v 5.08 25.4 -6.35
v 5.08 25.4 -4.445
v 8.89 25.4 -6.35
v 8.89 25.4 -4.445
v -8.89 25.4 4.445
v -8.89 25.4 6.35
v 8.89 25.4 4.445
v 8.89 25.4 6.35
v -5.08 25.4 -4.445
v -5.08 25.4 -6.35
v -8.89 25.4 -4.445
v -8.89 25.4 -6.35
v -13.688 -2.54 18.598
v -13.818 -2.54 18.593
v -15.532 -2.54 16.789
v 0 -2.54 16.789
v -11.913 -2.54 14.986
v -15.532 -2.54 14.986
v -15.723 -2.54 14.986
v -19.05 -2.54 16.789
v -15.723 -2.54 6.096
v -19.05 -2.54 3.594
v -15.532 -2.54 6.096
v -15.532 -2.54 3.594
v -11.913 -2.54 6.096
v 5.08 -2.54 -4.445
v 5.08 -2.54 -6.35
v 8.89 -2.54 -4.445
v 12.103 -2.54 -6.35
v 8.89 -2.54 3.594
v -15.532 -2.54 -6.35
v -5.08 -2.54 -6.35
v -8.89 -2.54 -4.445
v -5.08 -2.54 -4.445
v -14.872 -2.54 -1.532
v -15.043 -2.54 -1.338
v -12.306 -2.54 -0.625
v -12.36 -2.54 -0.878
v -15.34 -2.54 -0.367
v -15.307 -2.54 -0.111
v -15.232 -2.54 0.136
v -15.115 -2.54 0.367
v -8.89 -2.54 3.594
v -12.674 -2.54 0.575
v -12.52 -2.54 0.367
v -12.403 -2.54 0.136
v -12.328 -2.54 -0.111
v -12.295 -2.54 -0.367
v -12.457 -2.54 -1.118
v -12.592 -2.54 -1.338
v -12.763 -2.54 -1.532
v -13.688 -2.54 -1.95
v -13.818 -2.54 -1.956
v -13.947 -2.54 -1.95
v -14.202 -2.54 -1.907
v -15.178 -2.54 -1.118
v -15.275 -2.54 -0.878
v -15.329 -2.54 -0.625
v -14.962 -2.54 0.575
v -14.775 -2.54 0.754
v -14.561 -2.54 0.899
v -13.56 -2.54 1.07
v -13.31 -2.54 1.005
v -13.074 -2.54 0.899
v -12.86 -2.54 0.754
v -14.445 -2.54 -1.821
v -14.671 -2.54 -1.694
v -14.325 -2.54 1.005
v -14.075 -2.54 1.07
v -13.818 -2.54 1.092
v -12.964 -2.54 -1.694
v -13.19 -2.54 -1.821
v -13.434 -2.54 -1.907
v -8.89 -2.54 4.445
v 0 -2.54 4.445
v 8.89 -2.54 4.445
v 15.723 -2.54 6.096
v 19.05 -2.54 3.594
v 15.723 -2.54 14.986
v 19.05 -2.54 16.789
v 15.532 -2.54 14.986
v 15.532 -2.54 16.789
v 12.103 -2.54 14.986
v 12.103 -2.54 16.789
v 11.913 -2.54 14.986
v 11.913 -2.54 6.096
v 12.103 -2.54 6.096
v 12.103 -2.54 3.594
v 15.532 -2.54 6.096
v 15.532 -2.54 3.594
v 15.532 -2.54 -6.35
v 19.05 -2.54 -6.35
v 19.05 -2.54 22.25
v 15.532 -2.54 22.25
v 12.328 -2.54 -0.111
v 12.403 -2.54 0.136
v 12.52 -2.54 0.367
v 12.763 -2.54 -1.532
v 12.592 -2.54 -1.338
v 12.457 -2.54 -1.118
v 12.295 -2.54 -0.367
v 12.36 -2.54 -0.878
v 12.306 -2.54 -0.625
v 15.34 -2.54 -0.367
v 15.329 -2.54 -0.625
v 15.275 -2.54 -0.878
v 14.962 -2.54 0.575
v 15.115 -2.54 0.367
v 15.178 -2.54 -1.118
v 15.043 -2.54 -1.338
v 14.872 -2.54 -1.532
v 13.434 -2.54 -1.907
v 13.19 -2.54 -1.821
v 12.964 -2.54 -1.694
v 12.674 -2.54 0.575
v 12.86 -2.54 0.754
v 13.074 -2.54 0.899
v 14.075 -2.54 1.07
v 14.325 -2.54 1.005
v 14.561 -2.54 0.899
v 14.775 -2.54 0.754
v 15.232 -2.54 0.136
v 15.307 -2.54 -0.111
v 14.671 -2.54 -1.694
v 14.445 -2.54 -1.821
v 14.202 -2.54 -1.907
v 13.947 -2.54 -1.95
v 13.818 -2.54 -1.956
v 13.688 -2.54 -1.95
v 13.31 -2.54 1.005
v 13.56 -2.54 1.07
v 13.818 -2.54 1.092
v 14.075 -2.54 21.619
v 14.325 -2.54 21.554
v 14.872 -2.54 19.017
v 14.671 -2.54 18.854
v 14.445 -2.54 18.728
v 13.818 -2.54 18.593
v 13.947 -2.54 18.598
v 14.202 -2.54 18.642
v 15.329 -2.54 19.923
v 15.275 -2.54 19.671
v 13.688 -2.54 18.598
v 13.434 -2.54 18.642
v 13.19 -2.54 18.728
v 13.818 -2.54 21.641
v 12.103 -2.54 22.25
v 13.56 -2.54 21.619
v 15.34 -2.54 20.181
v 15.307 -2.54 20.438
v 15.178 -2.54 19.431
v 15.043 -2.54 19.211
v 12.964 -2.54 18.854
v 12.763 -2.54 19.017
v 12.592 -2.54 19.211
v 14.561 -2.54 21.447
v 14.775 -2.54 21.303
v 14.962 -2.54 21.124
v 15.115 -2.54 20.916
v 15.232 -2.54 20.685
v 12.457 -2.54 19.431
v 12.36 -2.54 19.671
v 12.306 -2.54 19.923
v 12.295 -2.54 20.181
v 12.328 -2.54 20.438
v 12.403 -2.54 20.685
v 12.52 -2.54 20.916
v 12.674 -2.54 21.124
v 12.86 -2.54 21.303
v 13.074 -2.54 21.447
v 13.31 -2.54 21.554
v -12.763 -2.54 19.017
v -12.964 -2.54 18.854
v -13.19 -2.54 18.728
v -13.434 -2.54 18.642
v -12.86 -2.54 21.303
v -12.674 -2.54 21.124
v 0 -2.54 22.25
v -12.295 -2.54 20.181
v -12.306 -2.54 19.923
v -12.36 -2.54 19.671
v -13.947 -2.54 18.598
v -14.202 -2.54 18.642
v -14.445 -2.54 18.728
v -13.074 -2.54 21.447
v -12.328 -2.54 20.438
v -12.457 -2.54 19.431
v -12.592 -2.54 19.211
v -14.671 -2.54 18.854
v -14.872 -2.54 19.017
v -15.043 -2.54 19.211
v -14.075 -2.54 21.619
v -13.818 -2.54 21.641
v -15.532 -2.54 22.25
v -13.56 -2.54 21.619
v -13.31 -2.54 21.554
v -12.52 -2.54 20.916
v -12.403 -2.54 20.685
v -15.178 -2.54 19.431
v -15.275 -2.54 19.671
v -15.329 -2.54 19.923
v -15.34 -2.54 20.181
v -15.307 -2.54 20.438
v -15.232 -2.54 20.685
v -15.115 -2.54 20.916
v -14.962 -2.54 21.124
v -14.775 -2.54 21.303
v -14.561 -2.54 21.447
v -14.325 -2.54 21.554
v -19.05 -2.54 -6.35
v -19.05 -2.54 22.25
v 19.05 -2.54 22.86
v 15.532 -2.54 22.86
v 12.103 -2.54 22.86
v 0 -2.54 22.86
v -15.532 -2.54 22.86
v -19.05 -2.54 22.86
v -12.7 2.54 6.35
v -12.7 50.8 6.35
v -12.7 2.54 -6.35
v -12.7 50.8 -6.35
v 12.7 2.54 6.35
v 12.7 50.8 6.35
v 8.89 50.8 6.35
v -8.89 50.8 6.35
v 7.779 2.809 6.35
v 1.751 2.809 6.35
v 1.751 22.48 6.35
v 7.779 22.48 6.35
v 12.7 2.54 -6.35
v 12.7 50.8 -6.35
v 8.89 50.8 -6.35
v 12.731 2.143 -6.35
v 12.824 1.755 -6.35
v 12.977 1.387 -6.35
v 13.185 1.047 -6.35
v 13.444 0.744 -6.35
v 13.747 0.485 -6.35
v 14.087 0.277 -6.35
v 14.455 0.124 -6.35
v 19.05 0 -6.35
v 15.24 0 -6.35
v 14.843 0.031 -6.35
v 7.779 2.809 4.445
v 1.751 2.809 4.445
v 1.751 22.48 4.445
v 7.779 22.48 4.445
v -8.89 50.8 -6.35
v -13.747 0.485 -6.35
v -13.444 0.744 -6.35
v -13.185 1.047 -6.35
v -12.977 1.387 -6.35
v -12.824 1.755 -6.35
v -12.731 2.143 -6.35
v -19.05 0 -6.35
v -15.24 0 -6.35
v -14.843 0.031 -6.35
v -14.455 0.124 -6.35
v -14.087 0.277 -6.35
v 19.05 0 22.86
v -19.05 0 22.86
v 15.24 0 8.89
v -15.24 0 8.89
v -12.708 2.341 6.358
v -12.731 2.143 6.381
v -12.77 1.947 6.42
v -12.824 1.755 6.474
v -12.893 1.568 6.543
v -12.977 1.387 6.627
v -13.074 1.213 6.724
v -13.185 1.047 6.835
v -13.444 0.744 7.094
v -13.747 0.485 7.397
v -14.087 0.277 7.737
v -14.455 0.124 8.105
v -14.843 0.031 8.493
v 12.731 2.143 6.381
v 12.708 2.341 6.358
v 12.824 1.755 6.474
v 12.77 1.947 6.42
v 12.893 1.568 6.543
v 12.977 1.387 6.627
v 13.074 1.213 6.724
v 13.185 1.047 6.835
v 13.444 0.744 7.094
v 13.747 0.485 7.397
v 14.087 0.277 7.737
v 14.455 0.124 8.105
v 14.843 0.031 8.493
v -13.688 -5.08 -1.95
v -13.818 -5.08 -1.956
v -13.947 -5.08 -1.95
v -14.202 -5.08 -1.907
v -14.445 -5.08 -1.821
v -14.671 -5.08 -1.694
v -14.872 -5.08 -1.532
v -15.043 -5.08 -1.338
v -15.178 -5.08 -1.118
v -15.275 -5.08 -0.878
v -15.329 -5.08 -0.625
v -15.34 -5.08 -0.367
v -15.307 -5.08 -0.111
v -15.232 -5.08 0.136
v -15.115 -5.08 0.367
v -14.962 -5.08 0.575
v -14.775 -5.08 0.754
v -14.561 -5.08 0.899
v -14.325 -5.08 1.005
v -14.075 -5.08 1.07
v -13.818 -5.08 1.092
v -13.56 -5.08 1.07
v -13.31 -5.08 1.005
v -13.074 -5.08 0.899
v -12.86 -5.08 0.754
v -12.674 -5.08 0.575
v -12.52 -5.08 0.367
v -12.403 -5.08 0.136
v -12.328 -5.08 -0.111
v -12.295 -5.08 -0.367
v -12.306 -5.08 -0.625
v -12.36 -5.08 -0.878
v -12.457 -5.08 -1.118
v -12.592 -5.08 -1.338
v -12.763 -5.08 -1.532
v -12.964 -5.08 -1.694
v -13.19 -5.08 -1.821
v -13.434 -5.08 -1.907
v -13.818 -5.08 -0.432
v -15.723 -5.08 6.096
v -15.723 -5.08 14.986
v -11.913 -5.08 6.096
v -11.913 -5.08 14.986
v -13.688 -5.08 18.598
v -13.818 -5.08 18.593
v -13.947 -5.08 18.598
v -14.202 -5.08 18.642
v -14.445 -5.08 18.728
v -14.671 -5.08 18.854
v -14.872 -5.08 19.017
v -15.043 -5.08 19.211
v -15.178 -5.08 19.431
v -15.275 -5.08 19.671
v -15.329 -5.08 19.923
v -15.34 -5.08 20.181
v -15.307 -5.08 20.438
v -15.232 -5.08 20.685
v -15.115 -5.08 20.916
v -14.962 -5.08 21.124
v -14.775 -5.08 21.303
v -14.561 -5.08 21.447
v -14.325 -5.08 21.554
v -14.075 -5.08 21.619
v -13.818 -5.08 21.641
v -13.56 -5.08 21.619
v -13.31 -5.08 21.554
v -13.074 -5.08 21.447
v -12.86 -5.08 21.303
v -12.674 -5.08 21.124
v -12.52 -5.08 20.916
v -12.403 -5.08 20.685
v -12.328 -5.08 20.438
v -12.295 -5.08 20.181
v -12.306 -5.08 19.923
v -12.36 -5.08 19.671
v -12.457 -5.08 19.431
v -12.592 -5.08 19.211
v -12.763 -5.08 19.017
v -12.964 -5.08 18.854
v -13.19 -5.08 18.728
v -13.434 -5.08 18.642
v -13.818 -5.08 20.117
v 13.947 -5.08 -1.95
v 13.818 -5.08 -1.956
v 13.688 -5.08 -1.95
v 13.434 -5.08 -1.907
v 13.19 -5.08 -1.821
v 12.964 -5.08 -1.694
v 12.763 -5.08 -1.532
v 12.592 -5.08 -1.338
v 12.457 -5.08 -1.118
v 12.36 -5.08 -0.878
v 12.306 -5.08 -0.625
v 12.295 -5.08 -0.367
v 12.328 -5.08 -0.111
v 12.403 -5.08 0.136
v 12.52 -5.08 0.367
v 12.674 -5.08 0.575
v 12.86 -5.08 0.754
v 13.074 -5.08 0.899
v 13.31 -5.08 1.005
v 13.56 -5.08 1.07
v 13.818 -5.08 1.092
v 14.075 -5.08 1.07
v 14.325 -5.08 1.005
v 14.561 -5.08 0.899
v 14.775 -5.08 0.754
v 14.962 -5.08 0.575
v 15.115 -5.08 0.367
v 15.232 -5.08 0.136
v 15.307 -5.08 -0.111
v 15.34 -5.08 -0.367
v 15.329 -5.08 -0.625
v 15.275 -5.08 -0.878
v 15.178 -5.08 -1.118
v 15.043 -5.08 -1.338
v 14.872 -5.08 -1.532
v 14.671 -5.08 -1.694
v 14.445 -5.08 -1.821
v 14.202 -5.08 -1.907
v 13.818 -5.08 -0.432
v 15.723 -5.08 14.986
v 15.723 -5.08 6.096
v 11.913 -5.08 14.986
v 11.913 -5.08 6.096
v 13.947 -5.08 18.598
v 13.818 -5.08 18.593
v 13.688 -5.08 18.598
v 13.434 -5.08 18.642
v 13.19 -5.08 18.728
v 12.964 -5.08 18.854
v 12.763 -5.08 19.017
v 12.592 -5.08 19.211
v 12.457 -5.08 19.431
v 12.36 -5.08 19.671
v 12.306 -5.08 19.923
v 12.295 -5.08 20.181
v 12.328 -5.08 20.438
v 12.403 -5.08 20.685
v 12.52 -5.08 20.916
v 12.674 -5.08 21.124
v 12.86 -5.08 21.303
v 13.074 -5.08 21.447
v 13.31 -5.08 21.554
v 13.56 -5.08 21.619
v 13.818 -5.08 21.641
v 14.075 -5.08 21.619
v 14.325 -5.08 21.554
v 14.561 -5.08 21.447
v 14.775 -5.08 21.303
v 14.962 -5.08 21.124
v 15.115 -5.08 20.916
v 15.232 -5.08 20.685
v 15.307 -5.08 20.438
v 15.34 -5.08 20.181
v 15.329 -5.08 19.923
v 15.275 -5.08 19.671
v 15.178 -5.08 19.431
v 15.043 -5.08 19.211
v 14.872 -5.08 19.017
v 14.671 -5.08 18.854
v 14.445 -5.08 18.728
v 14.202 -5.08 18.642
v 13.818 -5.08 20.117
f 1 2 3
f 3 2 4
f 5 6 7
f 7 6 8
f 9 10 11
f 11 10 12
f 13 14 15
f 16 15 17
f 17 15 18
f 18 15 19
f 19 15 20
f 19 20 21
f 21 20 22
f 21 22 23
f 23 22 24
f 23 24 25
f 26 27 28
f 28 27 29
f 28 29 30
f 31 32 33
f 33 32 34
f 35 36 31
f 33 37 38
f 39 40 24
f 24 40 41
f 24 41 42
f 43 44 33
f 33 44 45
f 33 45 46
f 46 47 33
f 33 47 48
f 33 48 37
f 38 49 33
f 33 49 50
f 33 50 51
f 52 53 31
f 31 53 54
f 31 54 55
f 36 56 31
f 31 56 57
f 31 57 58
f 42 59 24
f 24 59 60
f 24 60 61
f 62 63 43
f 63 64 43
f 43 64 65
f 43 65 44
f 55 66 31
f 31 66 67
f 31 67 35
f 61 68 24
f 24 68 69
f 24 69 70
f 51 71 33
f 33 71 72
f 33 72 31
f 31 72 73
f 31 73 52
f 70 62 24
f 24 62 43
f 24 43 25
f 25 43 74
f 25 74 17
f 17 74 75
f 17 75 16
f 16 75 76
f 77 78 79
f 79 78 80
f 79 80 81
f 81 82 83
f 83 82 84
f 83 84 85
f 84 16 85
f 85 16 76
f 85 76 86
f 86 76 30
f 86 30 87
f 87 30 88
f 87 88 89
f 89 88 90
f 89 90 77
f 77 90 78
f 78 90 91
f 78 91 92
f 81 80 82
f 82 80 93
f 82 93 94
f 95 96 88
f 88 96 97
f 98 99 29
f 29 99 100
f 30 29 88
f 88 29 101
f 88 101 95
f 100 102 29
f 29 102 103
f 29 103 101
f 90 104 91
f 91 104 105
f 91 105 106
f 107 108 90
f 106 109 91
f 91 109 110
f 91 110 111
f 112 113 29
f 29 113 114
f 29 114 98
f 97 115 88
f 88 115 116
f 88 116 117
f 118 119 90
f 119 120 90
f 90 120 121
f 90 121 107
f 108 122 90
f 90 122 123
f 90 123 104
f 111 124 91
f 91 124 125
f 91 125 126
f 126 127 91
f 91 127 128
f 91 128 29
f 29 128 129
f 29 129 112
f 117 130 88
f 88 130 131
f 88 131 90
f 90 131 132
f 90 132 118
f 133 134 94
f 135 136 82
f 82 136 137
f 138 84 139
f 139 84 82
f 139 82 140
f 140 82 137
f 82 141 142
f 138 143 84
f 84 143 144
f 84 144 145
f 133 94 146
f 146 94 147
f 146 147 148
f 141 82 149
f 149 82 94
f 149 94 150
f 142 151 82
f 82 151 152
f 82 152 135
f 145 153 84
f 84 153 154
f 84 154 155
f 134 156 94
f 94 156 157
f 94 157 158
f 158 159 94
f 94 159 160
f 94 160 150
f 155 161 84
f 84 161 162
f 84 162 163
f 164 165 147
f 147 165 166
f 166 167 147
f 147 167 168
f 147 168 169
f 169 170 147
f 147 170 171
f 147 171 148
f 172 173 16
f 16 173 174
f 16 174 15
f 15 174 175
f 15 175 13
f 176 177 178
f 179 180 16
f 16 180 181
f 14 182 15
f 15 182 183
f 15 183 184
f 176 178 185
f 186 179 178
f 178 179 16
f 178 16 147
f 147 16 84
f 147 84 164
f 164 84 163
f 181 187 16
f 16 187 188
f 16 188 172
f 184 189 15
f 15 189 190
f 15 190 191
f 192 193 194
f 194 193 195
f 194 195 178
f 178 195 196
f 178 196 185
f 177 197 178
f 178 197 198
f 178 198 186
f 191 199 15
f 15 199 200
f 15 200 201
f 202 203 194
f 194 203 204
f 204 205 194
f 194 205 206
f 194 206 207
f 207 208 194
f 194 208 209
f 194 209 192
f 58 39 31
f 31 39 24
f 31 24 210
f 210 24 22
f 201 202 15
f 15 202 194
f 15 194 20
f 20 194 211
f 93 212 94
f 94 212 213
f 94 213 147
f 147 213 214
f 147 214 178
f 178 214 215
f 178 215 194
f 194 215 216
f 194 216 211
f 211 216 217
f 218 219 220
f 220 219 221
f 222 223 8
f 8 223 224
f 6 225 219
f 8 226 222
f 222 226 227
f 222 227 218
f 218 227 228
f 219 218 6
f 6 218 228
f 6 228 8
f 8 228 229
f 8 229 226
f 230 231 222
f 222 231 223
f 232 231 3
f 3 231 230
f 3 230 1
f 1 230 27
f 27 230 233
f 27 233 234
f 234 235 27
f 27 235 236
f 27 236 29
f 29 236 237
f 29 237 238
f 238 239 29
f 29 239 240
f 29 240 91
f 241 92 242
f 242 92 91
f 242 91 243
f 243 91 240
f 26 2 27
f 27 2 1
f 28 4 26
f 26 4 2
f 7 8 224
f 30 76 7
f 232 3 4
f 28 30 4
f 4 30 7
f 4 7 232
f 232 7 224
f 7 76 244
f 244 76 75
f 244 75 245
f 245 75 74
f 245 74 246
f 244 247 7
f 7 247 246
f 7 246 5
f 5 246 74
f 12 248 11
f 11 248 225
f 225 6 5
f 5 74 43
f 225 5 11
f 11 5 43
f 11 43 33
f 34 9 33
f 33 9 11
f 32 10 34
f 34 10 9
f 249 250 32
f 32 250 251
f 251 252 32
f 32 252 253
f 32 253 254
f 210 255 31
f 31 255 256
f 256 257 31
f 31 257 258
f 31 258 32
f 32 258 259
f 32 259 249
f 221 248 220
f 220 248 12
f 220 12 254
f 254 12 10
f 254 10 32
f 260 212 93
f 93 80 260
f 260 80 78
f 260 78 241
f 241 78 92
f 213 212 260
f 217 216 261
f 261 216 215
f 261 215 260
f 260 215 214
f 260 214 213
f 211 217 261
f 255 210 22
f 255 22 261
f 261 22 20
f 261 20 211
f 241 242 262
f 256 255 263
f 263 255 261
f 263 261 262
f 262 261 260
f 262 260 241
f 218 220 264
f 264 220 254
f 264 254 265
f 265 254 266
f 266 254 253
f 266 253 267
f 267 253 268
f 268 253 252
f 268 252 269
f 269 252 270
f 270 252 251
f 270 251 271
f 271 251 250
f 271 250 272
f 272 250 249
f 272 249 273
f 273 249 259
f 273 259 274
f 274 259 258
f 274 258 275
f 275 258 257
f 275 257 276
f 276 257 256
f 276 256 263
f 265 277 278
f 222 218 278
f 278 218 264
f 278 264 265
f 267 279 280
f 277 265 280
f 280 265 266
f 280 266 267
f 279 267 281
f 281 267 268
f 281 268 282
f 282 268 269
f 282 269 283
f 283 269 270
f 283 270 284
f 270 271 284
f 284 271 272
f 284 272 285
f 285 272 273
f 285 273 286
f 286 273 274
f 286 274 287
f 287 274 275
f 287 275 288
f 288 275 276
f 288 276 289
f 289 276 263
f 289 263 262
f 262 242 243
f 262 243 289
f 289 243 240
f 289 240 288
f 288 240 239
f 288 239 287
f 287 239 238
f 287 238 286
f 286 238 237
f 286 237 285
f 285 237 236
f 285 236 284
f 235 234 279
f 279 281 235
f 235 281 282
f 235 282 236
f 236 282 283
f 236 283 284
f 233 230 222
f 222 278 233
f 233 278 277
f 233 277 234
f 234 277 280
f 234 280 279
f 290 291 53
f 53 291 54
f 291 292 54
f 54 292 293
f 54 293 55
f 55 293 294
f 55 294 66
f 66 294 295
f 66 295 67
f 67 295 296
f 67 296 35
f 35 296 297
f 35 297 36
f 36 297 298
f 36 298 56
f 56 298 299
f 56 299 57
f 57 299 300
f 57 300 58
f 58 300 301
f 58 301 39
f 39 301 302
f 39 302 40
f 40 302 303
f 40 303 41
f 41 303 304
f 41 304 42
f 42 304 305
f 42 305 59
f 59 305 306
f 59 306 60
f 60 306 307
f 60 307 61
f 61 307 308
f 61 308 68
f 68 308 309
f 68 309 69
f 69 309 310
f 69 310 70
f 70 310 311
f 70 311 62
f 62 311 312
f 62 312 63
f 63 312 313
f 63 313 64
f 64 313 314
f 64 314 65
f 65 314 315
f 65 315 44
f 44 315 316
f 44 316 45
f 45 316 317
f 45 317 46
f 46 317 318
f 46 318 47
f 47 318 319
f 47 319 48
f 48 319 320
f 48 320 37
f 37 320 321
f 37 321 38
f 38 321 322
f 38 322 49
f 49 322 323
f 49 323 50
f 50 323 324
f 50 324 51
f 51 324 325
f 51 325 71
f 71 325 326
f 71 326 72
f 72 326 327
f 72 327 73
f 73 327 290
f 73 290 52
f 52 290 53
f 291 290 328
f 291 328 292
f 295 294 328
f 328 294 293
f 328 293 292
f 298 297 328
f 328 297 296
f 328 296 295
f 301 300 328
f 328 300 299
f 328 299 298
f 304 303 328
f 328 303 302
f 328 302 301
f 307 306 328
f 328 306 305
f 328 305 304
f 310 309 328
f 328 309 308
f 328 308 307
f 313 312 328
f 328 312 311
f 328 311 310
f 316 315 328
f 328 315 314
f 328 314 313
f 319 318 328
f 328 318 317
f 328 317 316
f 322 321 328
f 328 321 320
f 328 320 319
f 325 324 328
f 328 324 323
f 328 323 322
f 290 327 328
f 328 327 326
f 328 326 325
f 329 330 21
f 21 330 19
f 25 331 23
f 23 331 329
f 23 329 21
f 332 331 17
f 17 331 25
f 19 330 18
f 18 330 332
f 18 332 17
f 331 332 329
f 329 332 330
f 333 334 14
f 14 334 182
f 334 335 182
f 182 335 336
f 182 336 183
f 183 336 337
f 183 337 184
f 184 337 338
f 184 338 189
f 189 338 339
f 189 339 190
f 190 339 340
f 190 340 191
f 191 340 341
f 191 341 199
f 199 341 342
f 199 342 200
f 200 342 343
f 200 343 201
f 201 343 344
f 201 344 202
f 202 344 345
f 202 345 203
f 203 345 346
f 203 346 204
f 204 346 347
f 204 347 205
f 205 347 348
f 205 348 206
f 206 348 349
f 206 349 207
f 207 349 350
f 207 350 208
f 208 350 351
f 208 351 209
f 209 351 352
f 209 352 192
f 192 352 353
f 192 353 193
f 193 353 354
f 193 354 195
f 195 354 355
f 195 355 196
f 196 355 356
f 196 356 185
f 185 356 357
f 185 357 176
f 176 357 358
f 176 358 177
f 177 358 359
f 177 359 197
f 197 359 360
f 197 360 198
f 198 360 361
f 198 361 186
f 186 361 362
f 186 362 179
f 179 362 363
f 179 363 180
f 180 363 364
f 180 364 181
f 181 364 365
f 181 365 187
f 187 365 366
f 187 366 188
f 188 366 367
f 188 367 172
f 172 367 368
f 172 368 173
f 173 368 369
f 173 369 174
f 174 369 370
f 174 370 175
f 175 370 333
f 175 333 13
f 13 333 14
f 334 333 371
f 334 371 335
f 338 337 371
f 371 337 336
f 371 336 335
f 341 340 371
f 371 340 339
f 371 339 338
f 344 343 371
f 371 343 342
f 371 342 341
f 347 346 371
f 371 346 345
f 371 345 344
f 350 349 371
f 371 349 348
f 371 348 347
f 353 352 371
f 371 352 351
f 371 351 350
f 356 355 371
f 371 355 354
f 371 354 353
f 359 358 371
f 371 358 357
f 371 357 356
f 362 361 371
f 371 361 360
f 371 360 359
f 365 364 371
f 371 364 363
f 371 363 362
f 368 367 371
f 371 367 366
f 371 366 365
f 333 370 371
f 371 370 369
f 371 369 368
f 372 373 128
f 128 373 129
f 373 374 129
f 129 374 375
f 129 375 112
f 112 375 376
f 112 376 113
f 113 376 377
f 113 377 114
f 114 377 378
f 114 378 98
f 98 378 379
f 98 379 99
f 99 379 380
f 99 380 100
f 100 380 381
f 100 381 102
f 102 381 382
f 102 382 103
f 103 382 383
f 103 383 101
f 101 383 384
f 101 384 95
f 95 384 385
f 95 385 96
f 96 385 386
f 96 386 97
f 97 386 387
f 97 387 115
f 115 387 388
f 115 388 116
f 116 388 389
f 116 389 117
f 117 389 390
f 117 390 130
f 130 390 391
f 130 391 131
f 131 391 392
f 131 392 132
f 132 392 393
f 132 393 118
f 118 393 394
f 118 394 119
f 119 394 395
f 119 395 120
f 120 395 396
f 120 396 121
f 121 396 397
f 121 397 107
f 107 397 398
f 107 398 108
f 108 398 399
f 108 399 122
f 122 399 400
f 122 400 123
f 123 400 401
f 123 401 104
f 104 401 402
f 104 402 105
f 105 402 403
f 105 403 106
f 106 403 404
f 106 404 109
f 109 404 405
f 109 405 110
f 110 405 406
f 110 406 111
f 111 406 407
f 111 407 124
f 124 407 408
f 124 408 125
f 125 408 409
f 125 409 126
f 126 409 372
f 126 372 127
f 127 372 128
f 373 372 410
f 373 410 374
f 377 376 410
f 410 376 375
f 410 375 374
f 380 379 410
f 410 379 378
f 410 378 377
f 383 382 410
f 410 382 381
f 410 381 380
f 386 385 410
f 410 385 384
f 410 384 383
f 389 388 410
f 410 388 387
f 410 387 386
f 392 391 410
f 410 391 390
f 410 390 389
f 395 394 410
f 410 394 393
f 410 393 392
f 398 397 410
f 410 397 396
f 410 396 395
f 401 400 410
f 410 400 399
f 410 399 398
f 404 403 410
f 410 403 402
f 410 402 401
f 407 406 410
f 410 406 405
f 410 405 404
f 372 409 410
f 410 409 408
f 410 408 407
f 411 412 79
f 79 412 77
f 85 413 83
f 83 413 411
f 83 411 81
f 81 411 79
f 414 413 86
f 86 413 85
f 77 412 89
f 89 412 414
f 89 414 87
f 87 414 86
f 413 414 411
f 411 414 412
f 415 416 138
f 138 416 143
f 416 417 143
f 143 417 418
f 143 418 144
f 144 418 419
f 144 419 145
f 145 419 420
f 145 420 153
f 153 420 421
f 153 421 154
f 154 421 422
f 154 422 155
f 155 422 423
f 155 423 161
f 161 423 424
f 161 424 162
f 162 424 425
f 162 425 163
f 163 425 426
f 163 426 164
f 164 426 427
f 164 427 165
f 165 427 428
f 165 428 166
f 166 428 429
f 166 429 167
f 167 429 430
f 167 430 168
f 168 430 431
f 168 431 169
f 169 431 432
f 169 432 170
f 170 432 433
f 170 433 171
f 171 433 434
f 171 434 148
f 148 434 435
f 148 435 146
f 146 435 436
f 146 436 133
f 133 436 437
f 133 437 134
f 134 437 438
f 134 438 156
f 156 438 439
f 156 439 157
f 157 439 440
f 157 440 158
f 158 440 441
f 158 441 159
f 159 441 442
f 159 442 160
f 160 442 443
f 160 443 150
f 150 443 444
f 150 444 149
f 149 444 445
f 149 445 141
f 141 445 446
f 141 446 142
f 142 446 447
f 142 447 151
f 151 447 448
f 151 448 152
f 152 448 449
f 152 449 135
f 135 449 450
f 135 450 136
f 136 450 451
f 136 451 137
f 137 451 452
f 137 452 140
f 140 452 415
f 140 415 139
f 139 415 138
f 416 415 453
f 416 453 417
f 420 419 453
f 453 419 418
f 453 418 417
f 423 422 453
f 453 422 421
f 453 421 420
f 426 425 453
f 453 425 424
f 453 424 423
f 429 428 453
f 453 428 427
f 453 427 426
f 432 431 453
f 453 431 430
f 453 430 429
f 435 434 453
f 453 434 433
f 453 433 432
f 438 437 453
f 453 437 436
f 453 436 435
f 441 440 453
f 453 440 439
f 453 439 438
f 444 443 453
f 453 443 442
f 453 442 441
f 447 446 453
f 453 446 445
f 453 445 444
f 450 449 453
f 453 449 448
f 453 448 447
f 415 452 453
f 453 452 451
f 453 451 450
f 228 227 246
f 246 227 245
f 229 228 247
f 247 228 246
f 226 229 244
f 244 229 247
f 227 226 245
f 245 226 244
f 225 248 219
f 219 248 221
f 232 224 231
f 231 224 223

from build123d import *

# Parameters (mm, degrees)
BOSS_EXTRUDE1_DEPTH = 25.4
BOSS_EXTRUDE2_DEPTH = 2.54
FILLET1_R           = 2.54
SKETCH3_R           = 1.524
BOSS_EXTRUDE3_DEPTH = 2.54
SKETCH4_R           = 1.524
SKETCH4_W           = 3.81
SKETCH4_H           = 8.89
BOSS_EXTRUDE4_DEPTH = 2.54
CUT_EXTRUDE1_REACH  = 37.786
SKETCH5_W           = 6.027706616
SKETCH5_H           = 19.671501998
SKETCH6_W           = 3.81
SKETCH6_H           = 12.7
BOSS_EXTRUDE5_DEPTH = 25.4


with BuildPart() as part:
    # Sketch1 → Boss-Extrude1 (new body)
    with BuildSketch(Plane(origin=(0, 0, 0), x_dir=(1, 0, 0), z_dir=(0, 1, 0))):
        Polygon((-12.7, 6.35), (-5.08, 6.35), (-5.08, 4.445), (-8.89, 4.445), (-8.89, -4.445), (8.89, -4.445), (8.89, 4.445), (5.08, 4.445), (5.08, 6.35), (12.7, 6.35), (12.7, -6.35), (-12.7, -6.35), align=None)
    extrude(amount=BOSS_EXTRUDE1_DEPTH)

    # Sketch2 → Boss-Extrude2 (add)
    with BuildSketch(Plane.XZ):
        Polygon((-12.7, -6.35), (-19.05, -6.35), (-19.05, 22.86), (19.05, 22.86), (19.05, -6.35), (12.7, -6.35), (5.08, -6.35), (5.08, -4.445), (8.89, -4.445), (8.89, 4.445), (-8.89, 4.445), (-8.89, -4.445), (-5.08, -4.445), (-5.08, -6.35), align=None)
    extrude(amount=BOSS_EXTRUDE2_DEPTH)

    # Fillet1
    fillet1_edges = [part.edges().sort_by_distance(p)[0] for p in [
        (12.7, 0, 0),
        (0, 0, 6.35),
        (-12.7, 0, 0),
    ]]
    fillet(fillet1_edges, radius=FILLET1_R)

    # Sketch3 → Boss-Extrude3 (add)
    with BuildSketch(Plane.XZ.offset(2.54)):
        with Locations(Location((-13.8176, -0.4318, 0), (0, 0, 270))):
            Circle(SKETCH3_R)
    boss_extrude3 = extrude(amount=BOSS_EXTRUDE3_DEPTH)

    # Sketch4 → Boss-Extrude4 (add)
    with BuildSketch(Plane(origin=(0, -2.54, 0), x_dir=(-1, 0, 0), z_dir=(0, -1, 0))):
        with Locations(Location((13.8176, -20.1168, 0), (0, 0, 90))):
            Circle(SKETCH4_R)
        with Locations((13.8176, -10.541)):
            Rectangle(SKETCH4_W, SKETCH4_H)
    boss_extrude4 = extrude(amount=BOSS_EXTRUDE4_DEPTH)

    # Mirror1: Boss-Extrude3, Boss-Extrude4 across plane
    add(boss_extrude3.mirror(Plane(origin=(0, 0, 0), x_dir=(0, 0, 1), z_dir=(1, 0, 0))))
    add(boss_extrude4.mirror(Plane(origin=(0, 0, 0), x_dir=(0, 0, 1), z_dir=(1, 0, 0))))

    # Sketch5 → Cut-Extrude1 (cut, up to next)
    with BuildSketch(Plane.XY.offset(6.35), mode=Mode.PRIVATE) as cut_extrude1_sk1:
        with Locations((4.765146447, 12.644392592)):
            Rectangle(SKETCH5_W, SKETCH5_H)
    cut_extrude1_tool1 = extrude(cut_extrude1_sk1.sketch, amount=-CUT_EXTRUDE1_REACH, mode=Mode.PRIVATE) & part.part
    add(cut_extrude1_tool1.solids().sort_by_distance((4.765146, 12.644393, 6.35))[0], mode=Mode.SUBTRACT)

    # Sketch6 → Boss-Extrude5 (add)
    with BuildSketch(Plane(origin=(0, 25.4, 0), x_dir=(1, 0, 0), z_dir=(0, 1, 0))):
        with Locations((-10.795, 0)):
            Rectangle(SKETCH6_W, SKETCH6_H)
        with Locations((10.795, 0)):
            Rectangle(SKETCH6_W, SKETCH6_H)
    extrude(amount=BOSS_EXTRUDE5_DEPTH)


solid = part.part
